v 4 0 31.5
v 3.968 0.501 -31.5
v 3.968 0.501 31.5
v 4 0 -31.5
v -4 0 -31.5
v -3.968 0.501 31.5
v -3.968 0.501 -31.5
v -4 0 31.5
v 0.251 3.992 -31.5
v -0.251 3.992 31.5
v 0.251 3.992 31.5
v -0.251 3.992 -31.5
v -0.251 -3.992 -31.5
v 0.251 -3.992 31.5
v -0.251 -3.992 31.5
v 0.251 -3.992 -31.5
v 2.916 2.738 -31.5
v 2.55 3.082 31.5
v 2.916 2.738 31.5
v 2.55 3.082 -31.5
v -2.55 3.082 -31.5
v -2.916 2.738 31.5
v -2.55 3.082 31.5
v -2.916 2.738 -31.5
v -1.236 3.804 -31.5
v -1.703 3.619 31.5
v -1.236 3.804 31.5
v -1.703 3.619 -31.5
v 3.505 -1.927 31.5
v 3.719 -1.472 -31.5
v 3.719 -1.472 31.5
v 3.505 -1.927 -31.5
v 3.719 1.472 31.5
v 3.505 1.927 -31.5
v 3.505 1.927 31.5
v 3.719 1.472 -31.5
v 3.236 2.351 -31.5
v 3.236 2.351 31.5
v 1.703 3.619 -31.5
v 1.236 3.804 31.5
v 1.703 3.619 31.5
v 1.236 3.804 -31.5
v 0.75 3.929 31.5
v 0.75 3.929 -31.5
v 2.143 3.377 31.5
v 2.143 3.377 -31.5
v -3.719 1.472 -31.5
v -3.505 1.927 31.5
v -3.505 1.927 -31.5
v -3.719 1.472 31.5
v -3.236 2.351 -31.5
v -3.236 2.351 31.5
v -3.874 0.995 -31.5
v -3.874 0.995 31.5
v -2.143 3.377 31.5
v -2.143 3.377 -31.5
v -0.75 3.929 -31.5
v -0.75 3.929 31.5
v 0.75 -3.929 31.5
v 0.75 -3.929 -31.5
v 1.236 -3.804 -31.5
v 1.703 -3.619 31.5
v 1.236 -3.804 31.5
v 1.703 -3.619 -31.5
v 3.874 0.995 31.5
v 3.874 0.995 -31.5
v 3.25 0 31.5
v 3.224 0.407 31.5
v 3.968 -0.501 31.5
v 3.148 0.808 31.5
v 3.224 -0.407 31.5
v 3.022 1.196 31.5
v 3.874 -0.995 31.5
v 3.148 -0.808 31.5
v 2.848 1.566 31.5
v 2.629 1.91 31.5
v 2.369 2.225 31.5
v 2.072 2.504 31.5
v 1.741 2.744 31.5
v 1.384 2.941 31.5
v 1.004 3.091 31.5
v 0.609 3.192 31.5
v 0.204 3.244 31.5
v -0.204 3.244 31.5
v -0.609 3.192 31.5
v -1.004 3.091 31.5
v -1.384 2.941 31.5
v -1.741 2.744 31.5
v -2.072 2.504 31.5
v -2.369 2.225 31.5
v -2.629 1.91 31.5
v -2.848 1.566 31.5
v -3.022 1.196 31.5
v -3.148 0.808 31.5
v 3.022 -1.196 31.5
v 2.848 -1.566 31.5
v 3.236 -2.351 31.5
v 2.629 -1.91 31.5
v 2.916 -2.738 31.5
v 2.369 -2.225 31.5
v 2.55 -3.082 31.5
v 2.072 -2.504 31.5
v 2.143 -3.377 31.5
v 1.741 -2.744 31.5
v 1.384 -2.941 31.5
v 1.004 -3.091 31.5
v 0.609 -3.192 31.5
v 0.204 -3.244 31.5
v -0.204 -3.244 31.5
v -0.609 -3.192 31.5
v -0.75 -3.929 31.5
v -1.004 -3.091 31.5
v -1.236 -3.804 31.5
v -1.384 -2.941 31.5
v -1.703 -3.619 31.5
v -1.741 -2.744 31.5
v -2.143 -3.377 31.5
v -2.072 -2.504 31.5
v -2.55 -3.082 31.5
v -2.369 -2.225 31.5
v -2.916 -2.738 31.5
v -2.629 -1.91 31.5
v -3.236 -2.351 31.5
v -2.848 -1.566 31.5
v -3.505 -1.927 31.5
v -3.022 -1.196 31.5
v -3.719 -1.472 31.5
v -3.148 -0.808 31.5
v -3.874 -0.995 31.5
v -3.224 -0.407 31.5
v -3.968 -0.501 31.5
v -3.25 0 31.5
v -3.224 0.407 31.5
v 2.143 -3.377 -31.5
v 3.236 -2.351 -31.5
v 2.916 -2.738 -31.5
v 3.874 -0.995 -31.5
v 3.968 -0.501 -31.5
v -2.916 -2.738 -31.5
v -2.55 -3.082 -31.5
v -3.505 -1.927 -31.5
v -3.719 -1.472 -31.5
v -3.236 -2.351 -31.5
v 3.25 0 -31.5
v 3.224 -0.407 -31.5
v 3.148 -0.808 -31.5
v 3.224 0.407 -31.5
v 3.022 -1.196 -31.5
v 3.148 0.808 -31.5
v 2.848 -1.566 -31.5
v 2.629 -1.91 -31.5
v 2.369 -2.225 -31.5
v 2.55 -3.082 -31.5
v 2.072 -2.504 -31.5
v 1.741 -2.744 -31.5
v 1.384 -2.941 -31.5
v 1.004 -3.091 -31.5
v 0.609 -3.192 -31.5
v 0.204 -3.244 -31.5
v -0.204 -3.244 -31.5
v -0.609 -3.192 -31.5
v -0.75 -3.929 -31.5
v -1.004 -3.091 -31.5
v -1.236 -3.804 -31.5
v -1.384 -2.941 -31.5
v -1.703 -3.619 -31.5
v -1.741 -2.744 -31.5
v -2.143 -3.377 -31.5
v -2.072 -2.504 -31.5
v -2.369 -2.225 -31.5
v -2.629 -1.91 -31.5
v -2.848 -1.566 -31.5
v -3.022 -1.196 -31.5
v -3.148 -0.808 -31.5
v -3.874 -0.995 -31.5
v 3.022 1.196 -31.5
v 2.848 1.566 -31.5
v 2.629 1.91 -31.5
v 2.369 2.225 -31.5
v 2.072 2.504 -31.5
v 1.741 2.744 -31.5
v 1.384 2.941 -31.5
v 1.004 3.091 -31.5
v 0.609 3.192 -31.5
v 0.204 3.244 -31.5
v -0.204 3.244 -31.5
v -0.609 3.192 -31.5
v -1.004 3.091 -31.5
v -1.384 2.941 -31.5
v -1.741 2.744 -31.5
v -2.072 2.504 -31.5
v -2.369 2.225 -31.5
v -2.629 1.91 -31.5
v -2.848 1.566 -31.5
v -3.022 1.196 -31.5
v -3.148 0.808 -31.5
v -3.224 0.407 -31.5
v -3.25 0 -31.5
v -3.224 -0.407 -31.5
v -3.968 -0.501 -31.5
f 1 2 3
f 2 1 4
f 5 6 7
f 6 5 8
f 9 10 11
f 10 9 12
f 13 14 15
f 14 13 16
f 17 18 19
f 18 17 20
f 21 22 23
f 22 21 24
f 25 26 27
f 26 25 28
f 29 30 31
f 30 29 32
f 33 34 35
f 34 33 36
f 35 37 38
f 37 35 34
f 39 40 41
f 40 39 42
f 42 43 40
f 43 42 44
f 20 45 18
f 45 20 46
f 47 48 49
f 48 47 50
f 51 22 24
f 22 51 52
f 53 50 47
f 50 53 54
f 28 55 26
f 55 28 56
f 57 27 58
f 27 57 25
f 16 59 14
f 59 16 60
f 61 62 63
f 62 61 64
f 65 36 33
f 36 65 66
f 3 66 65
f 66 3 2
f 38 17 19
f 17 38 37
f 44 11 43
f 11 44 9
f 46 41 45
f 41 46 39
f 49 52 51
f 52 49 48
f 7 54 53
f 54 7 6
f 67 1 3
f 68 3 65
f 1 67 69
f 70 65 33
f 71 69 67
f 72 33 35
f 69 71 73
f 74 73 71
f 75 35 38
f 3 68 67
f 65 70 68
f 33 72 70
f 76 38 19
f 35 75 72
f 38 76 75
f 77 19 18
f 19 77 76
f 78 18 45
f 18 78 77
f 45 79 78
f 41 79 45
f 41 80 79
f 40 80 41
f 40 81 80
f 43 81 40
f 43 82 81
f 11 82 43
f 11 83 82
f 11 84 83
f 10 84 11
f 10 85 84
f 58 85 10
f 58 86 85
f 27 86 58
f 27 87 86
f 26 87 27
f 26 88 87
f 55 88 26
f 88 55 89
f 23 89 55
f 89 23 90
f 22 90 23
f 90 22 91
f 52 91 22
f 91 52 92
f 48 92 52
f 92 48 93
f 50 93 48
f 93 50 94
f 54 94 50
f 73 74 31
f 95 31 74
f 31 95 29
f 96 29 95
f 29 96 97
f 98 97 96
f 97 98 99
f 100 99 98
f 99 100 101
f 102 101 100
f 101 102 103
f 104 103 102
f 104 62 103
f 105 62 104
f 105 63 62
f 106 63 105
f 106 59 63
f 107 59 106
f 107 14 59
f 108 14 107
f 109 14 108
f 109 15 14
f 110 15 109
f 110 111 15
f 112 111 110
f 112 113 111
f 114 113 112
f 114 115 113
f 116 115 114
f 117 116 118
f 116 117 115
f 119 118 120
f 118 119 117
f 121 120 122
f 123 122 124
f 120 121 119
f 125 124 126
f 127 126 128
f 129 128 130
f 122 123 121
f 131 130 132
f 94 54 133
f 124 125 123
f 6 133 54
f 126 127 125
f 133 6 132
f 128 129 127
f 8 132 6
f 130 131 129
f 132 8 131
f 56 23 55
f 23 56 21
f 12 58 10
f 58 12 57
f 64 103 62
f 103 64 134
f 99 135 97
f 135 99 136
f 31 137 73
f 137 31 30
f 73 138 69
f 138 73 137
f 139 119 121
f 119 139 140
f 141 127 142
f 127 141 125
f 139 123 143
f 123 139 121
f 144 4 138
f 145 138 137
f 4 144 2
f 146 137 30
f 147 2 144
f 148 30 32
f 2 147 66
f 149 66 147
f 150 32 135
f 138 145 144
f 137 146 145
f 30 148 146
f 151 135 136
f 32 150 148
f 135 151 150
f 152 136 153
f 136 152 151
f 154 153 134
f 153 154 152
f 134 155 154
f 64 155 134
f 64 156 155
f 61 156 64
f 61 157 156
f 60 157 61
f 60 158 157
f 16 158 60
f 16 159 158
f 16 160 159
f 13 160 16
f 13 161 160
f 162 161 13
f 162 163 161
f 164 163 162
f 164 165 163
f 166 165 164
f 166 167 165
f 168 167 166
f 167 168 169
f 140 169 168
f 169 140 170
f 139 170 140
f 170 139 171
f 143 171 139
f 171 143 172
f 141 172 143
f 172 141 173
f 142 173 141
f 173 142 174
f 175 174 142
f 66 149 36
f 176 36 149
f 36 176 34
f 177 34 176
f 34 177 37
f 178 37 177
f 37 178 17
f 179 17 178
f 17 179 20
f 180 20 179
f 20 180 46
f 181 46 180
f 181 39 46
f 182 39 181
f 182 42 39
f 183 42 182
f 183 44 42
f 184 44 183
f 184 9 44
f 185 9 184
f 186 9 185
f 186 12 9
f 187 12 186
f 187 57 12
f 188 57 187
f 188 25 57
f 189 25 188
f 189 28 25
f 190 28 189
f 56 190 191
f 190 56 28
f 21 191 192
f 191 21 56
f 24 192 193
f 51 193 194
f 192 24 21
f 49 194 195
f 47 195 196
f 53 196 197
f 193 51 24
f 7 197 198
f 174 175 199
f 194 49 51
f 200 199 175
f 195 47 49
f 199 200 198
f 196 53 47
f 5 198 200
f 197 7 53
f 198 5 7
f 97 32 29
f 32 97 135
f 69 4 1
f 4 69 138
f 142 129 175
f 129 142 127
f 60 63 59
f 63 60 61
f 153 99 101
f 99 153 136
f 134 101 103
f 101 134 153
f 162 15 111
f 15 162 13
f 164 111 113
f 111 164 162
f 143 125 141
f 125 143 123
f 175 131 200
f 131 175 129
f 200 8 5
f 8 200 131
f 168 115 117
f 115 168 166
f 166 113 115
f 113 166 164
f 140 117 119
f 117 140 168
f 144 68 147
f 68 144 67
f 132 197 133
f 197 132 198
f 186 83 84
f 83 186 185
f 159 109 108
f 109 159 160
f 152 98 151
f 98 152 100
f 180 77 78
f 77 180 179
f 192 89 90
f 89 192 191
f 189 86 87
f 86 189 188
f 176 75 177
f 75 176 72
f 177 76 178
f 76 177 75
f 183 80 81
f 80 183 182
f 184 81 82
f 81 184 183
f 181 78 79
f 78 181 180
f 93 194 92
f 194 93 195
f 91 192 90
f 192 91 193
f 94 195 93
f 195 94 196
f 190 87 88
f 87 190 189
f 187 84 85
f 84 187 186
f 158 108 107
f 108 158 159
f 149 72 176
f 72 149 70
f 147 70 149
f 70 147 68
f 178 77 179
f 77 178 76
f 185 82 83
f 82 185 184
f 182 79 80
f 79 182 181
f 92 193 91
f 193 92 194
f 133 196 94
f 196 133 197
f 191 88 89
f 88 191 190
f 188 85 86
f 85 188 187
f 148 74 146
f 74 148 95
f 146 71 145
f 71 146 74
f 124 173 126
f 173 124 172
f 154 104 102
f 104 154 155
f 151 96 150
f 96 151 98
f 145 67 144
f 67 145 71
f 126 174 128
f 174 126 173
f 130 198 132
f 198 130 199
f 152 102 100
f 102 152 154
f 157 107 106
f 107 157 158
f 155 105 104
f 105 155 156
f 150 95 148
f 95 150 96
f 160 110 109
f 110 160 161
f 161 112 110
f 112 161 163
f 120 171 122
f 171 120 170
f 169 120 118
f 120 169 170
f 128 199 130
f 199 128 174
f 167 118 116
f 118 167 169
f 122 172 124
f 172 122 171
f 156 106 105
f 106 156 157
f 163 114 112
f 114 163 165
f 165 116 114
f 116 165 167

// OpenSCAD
$fn = 50;


difference() {
	union() {
		translate(v = [0, 0, -31.5000000000]) {
			cylinder(h = 63, r = 4.0000000000);
		}
	}
	union() {
		translate(v = [0, 0, -100.0000000000]) {
			cylinder(h = 200, r = 3.2500000000);
		}
	}
}
